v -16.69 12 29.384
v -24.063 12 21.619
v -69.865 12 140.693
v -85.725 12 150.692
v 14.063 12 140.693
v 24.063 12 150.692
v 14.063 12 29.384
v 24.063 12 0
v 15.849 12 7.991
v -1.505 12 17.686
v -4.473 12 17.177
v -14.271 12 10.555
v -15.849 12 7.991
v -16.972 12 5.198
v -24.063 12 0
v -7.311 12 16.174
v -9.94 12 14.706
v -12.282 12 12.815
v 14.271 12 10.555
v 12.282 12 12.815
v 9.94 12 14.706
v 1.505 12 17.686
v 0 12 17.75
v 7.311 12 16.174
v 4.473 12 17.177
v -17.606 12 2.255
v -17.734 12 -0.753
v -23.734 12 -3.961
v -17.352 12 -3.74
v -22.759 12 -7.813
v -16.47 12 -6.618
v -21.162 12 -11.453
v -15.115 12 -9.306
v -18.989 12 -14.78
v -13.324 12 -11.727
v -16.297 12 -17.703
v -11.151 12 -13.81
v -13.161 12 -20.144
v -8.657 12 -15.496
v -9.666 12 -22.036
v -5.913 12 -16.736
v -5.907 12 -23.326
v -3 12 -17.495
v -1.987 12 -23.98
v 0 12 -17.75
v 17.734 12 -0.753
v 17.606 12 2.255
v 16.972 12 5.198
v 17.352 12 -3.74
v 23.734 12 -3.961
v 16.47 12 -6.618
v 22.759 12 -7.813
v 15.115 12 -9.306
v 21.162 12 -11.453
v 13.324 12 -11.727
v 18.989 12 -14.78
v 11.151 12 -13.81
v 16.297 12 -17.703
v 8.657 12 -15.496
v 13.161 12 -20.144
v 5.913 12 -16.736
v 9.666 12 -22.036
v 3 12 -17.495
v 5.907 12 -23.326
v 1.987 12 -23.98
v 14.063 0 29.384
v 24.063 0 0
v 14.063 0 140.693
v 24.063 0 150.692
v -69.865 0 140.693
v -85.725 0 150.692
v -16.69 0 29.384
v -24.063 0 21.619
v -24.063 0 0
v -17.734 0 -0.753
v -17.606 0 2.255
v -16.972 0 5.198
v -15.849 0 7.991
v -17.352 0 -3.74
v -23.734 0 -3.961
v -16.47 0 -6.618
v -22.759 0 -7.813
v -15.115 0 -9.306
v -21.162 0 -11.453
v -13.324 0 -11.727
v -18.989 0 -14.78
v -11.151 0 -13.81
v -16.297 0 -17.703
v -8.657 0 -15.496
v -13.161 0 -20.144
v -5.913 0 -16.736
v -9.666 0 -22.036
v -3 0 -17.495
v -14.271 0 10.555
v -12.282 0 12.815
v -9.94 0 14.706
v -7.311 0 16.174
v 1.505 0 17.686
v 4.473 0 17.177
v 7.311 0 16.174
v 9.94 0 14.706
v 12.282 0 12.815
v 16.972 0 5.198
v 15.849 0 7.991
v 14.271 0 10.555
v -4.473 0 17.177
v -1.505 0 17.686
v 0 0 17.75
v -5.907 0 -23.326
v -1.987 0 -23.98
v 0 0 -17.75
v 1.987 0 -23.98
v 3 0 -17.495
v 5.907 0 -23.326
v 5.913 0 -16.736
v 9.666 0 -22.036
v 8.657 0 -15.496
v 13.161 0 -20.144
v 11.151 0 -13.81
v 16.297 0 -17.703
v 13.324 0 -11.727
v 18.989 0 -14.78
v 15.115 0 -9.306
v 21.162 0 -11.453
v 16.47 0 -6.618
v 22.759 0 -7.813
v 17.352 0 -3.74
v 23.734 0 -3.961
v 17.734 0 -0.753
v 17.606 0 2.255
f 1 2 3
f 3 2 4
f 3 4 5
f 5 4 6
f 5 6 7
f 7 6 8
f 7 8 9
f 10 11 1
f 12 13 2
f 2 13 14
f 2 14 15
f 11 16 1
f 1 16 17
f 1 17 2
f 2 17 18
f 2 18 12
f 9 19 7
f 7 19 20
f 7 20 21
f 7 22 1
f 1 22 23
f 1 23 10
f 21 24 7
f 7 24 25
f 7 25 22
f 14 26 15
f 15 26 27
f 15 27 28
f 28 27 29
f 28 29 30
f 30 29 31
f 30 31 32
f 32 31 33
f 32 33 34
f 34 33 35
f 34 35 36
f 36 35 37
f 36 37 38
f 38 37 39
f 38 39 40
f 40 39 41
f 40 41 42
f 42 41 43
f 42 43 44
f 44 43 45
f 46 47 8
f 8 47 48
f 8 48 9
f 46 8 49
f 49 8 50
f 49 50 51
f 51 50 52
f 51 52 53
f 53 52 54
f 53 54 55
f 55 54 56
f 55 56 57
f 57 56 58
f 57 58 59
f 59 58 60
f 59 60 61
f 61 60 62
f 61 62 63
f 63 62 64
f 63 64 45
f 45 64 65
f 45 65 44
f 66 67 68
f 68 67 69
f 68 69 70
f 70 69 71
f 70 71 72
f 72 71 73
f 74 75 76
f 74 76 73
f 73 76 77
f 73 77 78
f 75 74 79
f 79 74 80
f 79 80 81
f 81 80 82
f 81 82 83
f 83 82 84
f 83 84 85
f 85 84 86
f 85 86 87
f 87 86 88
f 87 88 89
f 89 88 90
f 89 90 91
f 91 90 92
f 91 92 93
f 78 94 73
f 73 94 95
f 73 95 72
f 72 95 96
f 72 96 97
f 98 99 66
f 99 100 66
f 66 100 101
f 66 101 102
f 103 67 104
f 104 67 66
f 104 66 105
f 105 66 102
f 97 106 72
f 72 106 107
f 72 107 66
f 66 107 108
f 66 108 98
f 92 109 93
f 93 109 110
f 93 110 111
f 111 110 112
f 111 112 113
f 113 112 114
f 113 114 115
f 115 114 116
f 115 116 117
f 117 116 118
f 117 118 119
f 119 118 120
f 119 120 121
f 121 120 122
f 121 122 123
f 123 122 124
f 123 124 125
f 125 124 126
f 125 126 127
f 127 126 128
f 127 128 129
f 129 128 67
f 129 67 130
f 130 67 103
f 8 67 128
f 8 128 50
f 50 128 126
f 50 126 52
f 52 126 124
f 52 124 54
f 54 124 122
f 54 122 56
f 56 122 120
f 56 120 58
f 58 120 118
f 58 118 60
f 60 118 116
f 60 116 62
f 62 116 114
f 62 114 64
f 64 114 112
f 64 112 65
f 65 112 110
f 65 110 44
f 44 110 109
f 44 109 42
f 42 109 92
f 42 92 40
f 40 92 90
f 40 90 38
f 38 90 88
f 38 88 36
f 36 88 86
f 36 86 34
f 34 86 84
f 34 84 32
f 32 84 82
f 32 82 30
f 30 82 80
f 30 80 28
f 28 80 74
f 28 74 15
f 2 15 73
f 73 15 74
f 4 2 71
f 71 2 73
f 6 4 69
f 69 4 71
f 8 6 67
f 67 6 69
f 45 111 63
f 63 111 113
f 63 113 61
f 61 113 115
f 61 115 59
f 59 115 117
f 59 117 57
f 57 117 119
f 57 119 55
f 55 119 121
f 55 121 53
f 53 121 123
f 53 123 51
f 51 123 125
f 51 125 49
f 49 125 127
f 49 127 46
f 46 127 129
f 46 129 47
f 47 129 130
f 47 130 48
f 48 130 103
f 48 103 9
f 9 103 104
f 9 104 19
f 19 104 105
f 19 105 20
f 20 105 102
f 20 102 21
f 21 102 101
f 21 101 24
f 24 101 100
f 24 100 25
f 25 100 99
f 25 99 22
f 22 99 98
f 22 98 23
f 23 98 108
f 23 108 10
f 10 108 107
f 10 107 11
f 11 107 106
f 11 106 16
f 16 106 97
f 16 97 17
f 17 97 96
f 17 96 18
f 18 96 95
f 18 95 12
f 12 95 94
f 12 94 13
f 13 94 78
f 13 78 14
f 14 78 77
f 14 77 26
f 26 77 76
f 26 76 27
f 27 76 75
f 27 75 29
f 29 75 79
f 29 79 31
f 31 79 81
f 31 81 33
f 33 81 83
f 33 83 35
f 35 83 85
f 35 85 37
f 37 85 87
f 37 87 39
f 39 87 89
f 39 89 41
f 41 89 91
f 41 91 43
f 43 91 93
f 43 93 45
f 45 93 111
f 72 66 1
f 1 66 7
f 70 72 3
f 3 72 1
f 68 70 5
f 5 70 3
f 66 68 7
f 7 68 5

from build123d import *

# Parameters (mm, degrees)
SKETCH1_R           = 17.75
BOSS_EXTRUDE1_DEPTH = 12
CUT_EXTRUDE1_DEPTH  = 37


with BuildPart() as part:
    # Sketch1 → Boss-Extrude1 (new body)
    with BuildSketch(Plane(origin=(0, 0, 0), x_dir=(1, 0, 0), z_dir=(0, 1, 0))):
        with BuildLine():
            Line((-85.725, -150.69249853), (24.062600581, -150.69249853))
            Line((24.062600581, -150.69249853), (24.062600581, 0))
            ThreePointArc((24.062600581, 0), (0, 24.062600581), (-24.062600581, 0))
            Line((-24.062600581, 0), (-24.062600581, -21.619479895))
            Line((-24.062600581, -21.619479895), (-85.725, -150.69249853))
        make_face()
        with Locations(Location((0, 0, 0), (0, 0, 270))):
            Circle(SKETCH1_R, mode=Mode.SUBTRACT)
    extrude(amount=BOSS_EXTRUDE1_DEPTH)

    # Sketch3 → Cut-Extrude1 (cut)
    with BuildSketch(Plane.XZ):
        Polygon((14.062600581, 46.322856575), (14.062600581, 29.384281384), (-16.689552863, 29.384281384), (-69.865126015, 140.69249853), (14.062600581, 140.69249853), align=None)
    extrude(amount=-CUT_EXTRUDE1_DEPTH, mode=Mode.SUBTRACT)


solid = part.part
